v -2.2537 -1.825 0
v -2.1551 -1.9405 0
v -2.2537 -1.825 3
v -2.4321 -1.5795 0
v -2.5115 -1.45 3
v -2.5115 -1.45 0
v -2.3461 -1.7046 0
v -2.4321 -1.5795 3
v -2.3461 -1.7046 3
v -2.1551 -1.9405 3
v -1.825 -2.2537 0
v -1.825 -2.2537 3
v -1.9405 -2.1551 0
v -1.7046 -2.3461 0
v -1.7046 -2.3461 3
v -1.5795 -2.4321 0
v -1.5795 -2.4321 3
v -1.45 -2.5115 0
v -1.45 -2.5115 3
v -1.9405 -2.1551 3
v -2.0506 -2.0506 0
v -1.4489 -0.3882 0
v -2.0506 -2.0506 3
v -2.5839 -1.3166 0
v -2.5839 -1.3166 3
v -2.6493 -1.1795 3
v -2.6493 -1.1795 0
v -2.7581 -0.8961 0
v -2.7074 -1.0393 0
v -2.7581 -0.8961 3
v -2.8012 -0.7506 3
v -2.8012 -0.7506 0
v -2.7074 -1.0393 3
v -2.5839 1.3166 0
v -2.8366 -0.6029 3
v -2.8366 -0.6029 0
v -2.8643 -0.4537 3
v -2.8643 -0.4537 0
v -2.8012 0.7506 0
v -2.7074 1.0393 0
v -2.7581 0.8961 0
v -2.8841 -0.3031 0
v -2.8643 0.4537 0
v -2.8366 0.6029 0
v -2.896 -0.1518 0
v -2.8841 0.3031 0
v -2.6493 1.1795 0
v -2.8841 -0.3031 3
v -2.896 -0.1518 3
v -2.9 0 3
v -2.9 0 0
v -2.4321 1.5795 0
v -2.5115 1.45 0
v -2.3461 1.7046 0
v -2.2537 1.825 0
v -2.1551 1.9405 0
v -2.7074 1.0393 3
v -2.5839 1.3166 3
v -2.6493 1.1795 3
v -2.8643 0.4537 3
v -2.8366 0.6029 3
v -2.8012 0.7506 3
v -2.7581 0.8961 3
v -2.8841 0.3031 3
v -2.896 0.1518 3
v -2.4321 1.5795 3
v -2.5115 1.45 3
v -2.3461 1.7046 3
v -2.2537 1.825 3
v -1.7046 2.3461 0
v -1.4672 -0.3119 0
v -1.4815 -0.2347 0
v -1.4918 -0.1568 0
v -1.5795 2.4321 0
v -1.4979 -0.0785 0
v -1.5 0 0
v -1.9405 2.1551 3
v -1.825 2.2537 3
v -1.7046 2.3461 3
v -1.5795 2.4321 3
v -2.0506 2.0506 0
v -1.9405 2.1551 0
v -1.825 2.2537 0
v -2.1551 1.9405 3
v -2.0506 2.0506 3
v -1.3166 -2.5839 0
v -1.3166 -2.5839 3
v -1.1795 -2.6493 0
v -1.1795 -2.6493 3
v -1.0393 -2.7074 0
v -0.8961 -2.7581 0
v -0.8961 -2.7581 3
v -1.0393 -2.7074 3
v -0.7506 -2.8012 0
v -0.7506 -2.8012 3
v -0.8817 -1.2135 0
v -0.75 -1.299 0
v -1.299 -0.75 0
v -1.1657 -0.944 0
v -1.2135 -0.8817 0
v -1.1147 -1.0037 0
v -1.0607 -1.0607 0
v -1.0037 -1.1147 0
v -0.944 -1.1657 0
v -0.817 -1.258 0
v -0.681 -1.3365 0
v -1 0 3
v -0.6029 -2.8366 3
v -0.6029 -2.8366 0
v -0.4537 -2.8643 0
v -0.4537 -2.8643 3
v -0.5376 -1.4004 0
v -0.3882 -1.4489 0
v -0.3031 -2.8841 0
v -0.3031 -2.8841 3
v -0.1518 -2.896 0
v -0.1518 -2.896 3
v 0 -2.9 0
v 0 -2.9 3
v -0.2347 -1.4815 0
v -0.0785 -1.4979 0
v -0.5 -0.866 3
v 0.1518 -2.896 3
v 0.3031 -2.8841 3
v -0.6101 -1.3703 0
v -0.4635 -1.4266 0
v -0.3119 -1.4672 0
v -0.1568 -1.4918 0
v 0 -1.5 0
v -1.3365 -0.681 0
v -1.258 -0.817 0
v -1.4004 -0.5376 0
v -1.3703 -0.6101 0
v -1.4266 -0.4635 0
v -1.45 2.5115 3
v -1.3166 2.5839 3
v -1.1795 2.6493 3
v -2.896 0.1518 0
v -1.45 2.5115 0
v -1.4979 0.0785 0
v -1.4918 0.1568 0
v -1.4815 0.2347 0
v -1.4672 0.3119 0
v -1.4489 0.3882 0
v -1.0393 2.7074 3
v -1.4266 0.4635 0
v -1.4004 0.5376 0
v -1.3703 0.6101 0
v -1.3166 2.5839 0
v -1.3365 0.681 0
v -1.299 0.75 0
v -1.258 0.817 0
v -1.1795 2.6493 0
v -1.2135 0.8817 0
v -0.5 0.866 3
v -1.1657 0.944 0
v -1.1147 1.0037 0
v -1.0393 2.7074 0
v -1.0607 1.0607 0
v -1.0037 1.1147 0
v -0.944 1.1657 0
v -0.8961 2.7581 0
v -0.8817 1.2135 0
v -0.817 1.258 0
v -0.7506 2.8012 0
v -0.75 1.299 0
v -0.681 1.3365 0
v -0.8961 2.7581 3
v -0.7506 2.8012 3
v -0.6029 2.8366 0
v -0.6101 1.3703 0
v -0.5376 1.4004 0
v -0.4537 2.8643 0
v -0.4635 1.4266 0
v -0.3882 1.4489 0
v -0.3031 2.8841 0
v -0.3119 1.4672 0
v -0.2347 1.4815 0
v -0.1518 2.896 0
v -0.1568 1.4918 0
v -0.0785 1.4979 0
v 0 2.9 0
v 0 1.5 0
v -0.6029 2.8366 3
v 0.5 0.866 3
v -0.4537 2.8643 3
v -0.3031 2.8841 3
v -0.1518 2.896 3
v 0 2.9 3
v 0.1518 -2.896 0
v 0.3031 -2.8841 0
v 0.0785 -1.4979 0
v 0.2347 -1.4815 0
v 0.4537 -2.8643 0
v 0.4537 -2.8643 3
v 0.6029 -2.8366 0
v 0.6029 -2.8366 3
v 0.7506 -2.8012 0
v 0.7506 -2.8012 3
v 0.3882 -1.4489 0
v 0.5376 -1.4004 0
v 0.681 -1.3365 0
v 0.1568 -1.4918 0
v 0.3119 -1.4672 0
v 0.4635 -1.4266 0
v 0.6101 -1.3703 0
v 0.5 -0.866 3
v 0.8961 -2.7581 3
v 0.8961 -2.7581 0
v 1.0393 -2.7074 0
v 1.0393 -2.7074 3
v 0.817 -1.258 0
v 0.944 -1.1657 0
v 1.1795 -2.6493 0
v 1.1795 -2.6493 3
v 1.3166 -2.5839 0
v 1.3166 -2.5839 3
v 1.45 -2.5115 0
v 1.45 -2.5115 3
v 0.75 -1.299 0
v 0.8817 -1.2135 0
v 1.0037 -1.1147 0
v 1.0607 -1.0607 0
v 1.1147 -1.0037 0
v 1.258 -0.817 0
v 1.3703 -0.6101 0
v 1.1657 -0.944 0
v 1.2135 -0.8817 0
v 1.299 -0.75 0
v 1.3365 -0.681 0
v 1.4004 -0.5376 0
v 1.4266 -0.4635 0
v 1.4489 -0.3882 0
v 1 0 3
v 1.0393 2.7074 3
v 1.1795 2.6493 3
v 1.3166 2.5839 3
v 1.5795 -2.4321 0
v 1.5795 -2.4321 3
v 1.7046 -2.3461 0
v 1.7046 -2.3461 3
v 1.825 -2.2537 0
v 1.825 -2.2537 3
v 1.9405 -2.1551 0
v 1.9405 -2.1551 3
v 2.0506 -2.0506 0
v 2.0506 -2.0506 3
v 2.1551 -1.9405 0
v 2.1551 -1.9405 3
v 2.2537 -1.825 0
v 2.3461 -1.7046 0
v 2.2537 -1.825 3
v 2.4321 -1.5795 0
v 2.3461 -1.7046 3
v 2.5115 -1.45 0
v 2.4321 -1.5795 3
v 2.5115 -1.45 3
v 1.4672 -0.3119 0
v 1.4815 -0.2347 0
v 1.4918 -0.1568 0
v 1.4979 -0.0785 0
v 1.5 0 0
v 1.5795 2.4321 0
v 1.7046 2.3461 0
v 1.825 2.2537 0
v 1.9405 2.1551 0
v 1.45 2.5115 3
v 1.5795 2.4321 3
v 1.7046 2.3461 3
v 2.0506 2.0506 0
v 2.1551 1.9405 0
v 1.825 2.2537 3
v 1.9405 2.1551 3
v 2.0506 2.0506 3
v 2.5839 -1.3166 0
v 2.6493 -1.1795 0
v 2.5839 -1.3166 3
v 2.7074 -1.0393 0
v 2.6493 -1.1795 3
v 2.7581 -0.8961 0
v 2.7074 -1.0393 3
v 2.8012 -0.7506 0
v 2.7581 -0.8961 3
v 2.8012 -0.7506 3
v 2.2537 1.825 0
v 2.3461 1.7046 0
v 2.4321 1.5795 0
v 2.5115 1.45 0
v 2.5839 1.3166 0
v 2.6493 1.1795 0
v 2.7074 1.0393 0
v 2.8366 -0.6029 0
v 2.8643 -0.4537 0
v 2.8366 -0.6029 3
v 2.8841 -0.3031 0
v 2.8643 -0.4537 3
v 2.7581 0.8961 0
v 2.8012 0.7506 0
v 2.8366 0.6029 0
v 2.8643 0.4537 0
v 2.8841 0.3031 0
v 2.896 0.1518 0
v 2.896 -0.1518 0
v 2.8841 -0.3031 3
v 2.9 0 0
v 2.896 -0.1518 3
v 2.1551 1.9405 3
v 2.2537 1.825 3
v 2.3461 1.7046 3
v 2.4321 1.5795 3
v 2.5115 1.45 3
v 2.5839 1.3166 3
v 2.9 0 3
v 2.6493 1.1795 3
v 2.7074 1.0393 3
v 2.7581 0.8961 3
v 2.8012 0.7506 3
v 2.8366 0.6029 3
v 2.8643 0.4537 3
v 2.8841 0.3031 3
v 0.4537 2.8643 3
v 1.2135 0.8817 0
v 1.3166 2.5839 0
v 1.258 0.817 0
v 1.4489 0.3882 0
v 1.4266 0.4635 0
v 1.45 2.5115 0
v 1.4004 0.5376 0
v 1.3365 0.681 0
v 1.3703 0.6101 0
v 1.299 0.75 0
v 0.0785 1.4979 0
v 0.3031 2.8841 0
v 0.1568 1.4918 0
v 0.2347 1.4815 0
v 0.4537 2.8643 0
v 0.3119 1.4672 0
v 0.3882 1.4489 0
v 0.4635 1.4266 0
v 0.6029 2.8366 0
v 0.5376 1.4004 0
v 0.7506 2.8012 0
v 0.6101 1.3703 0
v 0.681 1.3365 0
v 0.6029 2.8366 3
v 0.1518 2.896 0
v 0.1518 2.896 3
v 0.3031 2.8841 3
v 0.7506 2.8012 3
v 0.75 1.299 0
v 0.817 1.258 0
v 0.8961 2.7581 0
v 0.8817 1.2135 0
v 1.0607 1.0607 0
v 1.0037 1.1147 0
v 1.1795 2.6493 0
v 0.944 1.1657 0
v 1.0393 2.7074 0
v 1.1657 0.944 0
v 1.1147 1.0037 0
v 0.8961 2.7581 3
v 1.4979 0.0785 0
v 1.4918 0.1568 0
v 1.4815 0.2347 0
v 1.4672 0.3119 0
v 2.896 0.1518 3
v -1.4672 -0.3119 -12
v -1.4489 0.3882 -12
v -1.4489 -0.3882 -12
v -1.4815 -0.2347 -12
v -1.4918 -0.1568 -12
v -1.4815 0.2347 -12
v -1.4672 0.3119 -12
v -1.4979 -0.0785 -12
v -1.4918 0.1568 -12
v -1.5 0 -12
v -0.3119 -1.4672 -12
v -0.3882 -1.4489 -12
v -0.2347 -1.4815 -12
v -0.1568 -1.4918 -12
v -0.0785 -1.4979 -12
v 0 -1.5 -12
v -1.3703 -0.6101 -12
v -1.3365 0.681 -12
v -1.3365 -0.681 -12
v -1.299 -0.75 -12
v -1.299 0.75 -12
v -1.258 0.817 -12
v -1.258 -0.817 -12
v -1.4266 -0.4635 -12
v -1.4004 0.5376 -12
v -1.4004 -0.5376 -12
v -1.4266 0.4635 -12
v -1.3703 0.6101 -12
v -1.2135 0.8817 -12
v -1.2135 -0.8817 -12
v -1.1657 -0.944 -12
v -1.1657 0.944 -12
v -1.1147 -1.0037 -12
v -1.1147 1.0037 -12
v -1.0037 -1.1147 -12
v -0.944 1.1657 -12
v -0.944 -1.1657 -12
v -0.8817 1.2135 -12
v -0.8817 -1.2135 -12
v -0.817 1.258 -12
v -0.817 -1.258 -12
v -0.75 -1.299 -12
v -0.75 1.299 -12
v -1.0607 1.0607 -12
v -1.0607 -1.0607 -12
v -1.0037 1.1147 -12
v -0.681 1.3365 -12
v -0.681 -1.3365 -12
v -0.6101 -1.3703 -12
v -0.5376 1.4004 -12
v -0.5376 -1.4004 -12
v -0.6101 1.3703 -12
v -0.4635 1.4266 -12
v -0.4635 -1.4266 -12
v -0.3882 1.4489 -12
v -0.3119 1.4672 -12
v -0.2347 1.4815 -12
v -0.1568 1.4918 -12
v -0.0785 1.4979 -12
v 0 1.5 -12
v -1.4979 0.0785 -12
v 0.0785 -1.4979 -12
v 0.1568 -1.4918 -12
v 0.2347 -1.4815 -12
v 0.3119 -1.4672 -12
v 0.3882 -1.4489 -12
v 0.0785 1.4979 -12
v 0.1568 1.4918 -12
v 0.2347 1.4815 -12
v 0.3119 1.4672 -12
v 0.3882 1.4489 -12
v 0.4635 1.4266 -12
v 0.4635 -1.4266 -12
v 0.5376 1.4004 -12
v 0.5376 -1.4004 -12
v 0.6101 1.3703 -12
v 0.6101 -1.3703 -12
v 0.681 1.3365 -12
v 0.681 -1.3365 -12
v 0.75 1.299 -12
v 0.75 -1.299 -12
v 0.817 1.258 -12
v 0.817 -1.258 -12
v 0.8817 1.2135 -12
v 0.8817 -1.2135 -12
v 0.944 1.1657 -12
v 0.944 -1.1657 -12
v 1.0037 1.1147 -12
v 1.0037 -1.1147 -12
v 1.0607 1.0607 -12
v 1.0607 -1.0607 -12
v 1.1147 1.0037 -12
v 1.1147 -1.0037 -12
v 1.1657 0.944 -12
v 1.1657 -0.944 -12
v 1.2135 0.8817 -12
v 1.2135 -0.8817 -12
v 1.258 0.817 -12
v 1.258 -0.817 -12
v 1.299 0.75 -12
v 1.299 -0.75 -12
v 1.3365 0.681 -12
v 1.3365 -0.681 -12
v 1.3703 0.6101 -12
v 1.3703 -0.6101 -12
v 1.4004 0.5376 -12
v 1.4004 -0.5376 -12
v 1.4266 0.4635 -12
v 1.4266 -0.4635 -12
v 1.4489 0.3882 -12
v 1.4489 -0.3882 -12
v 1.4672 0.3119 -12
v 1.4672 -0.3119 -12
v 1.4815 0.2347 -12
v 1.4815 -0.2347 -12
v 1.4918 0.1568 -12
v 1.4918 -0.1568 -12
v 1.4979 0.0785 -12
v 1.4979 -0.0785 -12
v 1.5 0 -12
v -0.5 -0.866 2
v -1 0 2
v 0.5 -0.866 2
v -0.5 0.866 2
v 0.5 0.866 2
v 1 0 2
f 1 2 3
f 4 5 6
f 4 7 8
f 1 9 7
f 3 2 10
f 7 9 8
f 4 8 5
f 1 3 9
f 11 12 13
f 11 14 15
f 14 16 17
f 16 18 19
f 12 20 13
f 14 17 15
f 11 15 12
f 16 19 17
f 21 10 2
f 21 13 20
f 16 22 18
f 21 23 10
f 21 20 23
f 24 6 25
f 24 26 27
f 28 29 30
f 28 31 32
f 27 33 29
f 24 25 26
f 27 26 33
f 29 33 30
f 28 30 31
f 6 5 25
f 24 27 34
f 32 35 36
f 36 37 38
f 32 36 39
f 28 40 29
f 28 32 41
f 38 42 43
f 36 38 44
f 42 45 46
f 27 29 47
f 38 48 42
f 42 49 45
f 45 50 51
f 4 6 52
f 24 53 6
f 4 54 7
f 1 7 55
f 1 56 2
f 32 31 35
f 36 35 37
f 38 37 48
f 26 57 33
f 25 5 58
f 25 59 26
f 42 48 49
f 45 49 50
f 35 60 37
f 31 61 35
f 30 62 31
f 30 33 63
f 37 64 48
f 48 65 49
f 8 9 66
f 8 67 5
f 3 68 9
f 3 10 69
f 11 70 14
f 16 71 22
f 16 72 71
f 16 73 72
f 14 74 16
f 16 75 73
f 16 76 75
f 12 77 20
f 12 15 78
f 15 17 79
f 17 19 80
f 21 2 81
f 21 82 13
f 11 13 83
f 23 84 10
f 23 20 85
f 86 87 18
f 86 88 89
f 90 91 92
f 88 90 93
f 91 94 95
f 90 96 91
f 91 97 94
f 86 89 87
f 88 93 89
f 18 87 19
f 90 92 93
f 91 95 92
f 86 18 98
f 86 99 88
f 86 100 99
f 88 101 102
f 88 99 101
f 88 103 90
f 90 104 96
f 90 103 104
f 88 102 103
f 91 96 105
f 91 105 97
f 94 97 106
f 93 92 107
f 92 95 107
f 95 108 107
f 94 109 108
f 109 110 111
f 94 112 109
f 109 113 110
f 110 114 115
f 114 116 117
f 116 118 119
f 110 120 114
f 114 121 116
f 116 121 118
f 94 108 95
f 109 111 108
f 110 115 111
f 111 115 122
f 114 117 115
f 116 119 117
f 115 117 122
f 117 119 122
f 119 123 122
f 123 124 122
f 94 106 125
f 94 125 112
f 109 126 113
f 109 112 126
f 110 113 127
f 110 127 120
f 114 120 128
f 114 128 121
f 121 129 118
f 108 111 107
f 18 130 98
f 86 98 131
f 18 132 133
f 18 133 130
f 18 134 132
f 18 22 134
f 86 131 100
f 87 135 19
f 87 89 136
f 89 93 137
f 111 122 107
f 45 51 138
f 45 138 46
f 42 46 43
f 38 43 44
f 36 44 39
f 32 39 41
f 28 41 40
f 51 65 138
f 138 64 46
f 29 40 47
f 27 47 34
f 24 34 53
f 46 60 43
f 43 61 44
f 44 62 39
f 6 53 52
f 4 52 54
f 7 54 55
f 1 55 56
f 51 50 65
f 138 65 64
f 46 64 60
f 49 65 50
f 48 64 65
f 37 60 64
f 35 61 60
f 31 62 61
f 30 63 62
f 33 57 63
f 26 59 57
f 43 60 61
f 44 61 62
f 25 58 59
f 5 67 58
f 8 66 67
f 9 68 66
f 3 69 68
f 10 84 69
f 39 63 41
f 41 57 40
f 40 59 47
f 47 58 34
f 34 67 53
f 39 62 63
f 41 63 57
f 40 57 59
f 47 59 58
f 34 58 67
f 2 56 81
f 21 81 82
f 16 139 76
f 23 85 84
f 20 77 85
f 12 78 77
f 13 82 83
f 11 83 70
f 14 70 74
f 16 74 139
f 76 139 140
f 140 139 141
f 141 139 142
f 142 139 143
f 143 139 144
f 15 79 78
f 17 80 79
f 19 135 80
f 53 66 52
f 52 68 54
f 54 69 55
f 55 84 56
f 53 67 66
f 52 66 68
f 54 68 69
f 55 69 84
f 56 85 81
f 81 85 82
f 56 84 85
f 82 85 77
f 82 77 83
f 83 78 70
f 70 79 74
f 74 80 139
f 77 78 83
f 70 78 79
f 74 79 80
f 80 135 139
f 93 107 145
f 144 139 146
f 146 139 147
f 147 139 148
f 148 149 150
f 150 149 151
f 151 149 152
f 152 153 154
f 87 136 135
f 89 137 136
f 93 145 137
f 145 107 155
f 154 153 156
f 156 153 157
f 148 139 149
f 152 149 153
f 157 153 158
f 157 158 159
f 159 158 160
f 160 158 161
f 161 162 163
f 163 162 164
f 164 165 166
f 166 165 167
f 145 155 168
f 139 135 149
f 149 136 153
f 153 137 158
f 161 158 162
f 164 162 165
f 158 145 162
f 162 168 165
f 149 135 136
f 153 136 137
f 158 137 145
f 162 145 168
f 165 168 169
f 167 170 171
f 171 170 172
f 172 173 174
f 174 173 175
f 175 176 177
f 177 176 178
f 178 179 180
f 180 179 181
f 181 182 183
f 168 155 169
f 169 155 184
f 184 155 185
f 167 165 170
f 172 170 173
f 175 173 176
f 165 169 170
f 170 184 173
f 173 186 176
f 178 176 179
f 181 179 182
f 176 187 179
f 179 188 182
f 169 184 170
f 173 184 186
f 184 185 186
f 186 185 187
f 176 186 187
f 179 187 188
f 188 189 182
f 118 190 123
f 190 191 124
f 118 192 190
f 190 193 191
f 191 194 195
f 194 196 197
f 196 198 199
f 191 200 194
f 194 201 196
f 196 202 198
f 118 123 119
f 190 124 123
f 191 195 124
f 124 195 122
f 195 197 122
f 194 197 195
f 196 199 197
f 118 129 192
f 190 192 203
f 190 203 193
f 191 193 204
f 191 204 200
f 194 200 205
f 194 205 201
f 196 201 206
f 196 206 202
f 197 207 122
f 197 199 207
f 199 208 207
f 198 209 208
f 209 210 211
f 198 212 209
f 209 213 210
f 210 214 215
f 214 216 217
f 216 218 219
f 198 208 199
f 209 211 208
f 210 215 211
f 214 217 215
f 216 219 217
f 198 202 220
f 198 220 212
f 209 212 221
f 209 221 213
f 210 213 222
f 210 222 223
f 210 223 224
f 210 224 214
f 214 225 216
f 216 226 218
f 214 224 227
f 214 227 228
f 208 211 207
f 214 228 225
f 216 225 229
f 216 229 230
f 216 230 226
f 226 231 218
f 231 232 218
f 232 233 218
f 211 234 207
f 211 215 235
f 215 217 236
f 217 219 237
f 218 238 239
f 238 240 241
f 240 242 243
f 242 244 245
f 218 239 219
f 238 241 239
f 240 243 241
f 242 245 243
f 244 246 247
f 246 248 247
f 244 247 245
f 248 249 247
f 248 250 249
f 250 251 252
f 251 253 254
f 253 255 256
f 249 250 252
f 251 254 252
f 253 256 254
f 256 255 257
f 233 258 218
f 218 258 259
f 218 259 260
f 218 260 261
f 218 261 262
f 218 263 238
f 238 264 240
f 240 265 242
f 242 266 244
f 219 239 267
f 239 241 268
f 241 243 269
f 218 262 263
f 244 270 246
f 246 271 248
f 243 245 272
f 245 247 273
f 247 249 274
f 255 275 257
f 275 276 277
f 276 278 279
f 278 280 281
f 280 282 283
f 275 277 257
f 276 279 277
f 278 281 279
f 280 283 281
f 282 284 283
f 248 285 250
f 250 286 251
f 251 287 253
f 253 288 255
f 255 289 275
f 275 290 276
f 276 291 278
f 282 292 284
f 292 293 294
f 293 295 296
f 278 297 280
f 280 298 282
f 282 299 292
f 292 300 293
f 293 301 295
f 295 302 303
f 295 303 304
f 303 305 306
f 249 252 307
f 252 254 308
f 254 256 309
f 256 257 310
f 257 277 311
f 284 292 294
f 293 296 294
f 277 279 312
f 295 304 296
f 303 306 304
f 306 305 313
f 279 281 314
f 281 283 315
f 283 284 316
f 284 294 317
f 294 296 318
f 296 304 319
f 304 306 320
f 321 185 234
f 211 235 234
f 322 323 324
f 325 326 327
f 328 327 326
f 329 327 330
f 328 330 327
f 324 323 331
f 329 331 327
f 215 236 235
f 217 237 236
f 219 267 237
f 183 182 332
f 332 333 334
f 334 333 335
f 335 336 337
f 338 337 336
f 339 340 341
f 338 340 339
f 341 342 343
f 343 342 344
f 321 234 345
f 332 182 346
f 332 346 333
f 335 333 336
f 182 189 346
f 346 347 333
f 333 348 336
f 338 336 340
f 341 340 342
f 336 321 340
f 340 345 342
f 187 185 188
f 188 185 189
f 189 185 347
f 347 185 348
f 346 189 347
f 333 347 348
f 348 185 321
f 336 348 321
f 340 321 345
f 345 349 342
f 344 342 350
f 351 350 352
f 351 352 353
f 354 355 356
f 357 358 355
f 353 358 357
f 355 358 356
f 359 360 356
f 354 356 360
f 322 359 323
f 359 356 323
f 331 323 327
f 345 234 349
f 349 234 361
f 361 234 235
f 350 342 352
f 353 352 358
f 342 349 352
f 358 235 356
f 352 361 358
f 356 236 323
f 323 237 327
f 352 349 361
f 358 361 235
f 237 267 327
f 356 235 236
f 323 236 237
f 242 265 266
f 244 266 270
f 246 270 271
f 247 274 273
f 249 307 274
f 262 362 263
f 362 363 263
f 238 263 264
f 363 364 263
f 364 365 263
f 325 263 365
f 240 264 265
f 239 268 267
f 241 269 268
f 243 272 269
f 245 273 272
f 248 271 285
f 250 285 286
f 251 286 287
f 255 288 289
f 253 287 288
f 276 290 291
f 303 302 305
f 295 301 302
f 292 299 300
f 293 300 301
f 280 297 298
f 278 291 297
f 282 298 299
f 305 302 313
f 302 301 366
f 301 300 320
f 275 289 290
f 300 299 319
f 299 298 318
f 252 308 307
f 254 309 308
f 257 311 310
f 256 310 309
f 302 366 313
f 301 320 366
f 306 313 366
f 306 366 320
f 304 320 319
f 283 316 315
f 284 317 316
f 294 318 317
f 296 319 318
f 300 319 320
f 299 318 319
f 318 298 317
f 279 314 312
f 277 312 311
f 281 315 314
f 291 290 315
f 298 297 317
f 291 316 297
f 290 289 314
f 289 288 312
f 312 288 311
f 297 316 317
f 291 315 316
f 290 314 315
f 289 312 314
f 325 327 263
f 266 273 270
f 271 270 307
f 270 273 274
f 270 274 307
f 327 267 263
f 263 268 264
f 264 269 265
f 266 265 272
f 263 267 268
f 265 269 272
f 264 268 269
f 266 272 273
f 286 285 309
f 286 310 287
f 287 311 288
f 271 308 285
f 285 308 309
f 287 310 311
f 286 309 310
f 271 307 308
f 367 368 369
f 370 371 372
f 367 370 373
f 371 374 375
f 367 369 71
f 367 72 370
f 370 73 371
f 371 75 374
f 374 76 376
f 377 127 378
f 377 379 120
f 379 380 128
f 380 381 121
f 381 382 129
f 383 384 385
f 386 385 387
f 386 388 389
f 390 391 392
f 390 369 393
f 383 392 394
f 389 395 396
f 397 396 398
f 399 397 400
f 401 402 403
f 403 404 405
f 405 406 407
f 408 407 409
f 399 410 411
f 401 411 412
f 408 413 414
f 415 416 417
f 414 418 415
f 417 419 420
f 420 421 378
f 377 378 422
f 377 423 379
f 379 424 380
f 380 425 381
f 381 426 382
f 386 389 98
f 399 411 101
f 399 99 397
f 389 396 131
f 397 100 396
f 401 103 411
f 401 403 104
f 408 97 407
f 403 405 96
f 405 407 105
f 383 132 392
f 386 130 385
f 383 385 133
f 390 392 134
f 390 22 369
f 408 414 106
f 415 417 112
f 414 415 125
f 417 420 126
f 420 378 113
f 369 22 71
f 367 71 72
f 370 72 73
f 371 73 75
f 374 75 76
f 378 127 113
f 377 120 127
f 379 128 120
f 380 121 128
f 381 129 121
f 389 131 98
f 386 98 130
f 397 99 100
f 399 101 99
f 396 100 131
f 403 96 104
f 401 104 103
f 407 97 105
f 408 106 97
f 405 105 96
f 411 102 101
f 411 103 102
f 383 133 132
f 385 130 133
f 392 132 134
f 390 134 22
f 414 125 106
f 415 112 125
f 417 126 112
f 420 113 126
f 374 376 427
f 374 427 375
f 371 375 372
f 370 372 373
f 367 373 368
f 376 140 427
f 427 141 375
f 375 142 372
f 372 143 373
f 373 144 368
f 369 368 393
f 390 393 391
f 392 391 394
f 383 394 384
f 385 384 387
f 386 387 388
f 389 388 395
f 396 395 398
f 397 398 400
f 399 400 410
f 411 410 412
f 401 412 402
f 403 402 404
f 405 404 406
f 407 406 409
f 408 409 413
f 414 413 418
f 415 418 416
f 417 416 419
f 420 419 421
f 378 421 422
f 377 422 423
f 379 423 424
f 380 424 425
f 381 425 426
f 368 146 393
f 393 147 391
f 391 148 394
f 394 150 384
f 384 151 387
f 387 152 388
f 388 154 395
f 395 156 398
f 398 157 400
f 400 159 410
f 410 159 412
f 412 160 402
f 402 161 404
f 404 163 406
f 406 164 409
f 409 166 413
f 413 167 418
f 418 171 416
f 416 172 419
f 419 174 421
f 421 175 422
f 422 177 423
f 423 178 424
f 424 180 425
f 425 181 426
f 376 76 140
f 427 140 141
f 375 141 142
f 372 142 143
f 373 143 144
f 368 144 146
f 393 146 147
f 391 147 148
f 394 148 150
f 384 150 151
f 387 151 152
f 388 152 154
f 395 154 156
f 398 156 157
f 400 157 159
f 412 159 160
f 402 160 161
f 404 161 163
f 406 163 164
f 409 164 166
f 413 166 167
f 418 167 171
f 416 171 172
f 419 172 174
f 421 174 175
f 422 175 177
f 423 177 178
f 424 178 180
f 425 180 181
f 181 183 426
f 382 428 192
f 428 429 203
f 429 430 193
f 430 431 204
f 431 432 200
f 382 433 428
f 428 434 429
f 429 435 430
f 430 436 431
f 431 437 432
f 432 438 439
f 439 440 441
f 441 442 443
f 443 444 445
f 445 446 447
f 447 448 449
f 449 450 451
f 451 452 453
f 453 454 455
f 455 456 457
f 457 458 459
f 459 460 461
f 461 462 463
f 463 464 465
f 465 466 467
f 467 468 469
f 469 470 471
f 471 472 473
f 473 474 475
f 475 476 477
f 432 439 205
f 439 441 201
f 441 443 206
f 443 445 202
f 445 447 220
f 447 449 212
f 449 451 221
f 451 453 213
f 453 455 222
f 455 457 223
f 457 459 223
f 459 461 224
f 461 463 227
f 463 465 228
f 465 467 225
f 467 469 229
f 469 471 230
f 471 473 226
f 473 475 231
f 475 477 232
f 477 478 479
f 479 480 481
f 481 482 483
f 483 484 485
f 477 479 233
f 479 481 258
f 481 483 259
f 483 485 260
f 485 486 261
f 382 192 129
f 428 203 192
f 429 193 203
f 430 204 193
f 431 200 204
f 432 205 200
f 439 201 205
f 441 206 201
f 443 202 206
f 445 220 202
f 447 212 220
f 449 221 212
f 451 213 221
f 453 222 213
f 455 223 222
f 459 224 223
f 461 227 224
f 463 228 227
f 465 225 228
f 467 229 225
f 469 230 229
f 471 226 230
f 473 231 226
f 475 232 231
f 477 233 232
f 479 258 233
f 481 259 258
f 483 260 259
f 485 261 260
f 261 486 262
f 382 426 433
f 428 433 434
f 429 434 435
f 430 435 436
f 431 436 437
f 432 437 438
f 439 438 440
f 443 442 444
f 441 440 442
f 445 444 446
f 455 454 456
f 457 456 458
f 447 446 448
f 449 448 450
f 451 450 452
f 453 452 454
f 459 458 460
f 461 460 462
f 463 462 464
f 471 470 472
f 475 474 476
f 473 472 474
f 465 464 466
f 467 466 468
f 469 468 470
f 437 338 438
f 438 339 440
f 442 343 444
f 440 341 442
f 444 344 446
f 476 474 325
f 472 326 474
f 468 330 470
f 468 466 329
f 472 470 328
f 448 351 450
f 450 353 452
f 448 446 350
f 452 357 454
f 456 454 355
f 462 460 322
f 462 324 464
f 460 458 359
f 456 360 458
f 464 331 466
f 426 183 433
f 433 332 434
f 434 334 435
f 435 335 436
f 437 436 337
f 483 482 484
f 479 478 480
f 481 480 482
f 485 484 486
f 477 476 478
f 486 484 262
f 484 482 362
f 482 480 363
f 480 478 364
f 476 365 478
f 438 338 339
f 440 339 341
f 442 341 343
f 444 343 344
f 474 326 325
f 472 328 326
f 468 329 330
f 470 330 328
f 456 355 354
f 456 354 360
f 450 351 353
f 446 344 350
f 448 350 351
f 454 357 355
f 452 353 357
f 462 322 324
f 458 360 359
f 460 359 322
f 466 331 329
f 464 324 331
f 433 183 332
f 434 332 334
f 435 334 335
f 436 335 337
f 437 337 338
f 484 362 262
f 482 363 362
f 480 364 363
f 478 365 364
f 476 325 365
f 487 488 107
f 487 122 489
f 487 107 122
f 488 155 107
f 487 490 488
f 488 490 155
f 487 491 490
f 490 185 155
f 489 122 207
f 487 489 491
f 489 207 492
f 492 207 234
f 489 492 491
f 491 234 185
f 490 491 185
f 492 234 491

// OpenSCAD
// file: C:/gh/oomlout_oobb_part_motor_gearbox_wave_drive_version_5/parts/oobb_part_motor_gearbox_wave_drive_version_5_12_to_1_reduction/compact_helpers.scad
// Reusable native geometry helpers.
function polar(r,a)=[r*cos(a),r*sin(a)];
function rotate_point(p,a)=[p[0]*cos(a)-p[1]*sin(a),p[0]*sin(a)+p[1]*cos(a)];
function profile_point(t)=let(
    s=sqrt(pow(pitch_radius,2)-pow(eccentricity*sin(cavity_count*t),2)),
    r=eccentricity*cos(cavity_count*t)+s,
    xi=atan2(eccentricity*cavity_count*sin(cavity_count*t),s),
    rr=roller_radius+profile_clearance)
    [r*cos(t)+rr*cos(t+xi),r*sin(t)+rr*sin(t+xi)];
function profile_points(upper=false)=[for(i=[0:cavity_count*profile_samples_per_cavity-1])
    rotate_point(profile_point(360*i/(cavity_count*profile_samples_per_cavity)),0)];
function roller_position(i,a,upper=false)=let(
    t=-a/roller_count+360*i/roller_count,
    rel=t-a-(upper?180:0),
    r=eccentricity*cos(rel)+sqrt(pow(pitch_radius,2)-pow(eccentricity*sin(rel),2))) polar(r,t);
module tube(ro,ri,h) { difference() { cylinder(r=ro,h=h); translate([0,0,-eps]) cylinder(r=ri,h=h+2*eps); } }
module screw_hole(size,h) { scale([1,1,h]) { if(size=="m2") oobb_hole_m2(); if(size=="m3") oobb_hole_m3(); if(size=="m6") oobb_hole_m6(); } }
module socket_recess(size,depth) {
    // OOBB socket head starts at the under-head plane and extends outward.
    scale([1,1,depth/(size=="m3"?3.2:2.2)]) {
        if(size=="m3") oobb_socket_m3(); else oobb_socket_m2();
    }
}
module at_mounts(points) { for(p=points) translate([p[0],p[1],0]) children(); }
module shaft_cut(h,fit=shaft_fit_clearance) {
    linear_extrude(h) intersection() {
        circle(r=input_shaft_diameter/2+fit);
        translate([-10,-10]) square([10+input_shaft_diameter/2-input_shaft_flat_depth+fit,20]);
    }
}
module rounded_rectangle_plate(size=[119,119,3],radius=1.5) {
    hull() for(x=[-1,1],y=[-1,1]) translate([x*(size[0]/2-radius),y*(size[1]/2-radius),0]) cylinder(r=radius,h=size[2]);
}
module grid_cuts(h) {
    // Actual OOBB grid centres: six units are centred on half-pitch offsets.
    for(i=[0:base_width-1],j=[0:base_height-1])
        let(x=(i-(base_width-1)/2)*oobb_grid_pitch,y=(j-(base_height-1)/2)*oobb_grid_pitch)
        if(sqrt(x*x+y*y)>housing_radius+3.5)
            translate([x,y,-eps]) screw_hole("m6",h+2*eps);
}
module wave_generator() {
    render(convexity=20) difference() {
        tube(wave_radius,12.6,wave_height);
        translate([0,0,wave_seat_z]) cylinder(r=13.5+bearing_seat_clearance,h=wave_height);
        translate([0,0,wave_height-wave_cap_depth]) cylinder(r=22.15,h=wave_cap_depth+eps);
        at_mounts(wave_mounts) {
            translate([0,0,-eps]) screw_hole("m3",wave_height+2*eps);
            translate([0,0,wave_nut_z]) scale([1,1,(wave_height-wave_cap_depth-wave_nut_z+eps)/2.7]) oobb_nut_m3();
        }
    }
}
module wave_cap() {
    render(convexity=20) difference() {
        tube(22,12.6,wave_cap_depth);
        at_mounts(wave_mounts) {
            translate([0,0,-eps]) screw_hole("m3",wave_cap_depth+2*eps);
            translate([0,0,wave_cap_depth-wave_head_recess]) socket_recess("m3",wave_head_recess+eps);
        }
    }
}
// file: C:/gh/oomlout_oobb_part_motor_gearbox_wave_drive_version_5/parts/oobb_part_motor_gearbox_wave_drive_version_5_12_to_1_reduction/oobb_hardware.scad
module oobb_rounded_rectangle_edges(size, radius, radius_top, radius_bottom) {
      rt=radius_top; rb=radius_bottom; depth=size[2]; n=16;
      lower=rb==0 ? [[radius,0]] :
        [for(i=[0:n]) let(a=-90+90*i/n) [radius-rb+rb*cos(a),rb+rb*sin(a)]];
      upper=rt==0 ? [[radius,depth]] :
        [for(i=[0:n]) let(a=90*i/n) [radius-rt+rt*cos(a),depth-rt+rt*sin(a)]];
      hull() for(x=[-size[0]/2+radius,size[0]/2-radius])
        for(y=[-size[1]/2+radius,size[1]/2-radius])
          translate([x,y,0]) rotate_extrude()
            polygon(concat([[0,0]],lower,upper,[[0,depth]]));
    }
// Generated from installed OOBB v5. All primitives use overhang=True.

module oobb_motor_plate_body() {


difference() {
	union() {
		translate(v = [0, 0, 0]) {
			rotate(a = [0, 0, 0]) {
				difference() {
					union() {
						oobb_rounded_rectangle_edges(radius = 1.5, radius_bottom = 1.5, radius_top = 1.5, size = [89.0, 89.0, 4.0]);
					}
					union();
				}
			}
		}
	}
	union();
}

}

module oobb_hole_m2() {


difference() {
	union() {
		cylinder(h = 1, r = 1.35);
	}
	union();
}

}

module oobb_hole_m3() {


difference() {
	union() {
		cylinder(h = 1, r = 1.8);
	}
	union();
}

}

module oobb_hole_m6() {


difference() {
	union() {
		cylinder(h = 1, r = 3.25);
	}
	union();
}

}

module oobb_nut_m2() {


difference() {
	union() {
		translate(v = [0, 0, 0]) {
			rotate(a = [0, 0, 0]) {
				difference() {
					union() {
						linear_extrude(height = 2.2) {
							polygon(points = [[2.4234, 0.0], [1.2117000000000002, 2.0987259635312085], [-1.2116999999999996, 2.0987259635312085], [-2.4234, 2.967809053053696e-16], [-1.211700000000001, -2.098725963531208], [1.2116999999999984, -2.0987259635312094]]);
						}
						translate(v = [-1.25, -2.75, -0.3]) {
							cube(size = [2.5, 5.5, 0.3]);
						}
						translate(v = [-1.25, -1.25, -0.6]) {
							cube(size = [2.5, 2.5, 0.3]);
						}
						translate(v = [-1.25, -2.75, 2.2]) {
							cube(size = [2.5, 5.5, 0.3]);
						}
						translate(v = [-1.25, -1.25, 2.5]) {
							cube(size = [2.5, 2.5, 0.3]);
						}
					}
					union();
				}
			}
		}
	}
	union();
}

}

module oobb_socket_m2() {


difference() {
	union() {
		translate(v = [0, 0, 0]) {
			rotate(a = [0, 0, 0]) {
				difference() {
					union() {
						cylinder(h = 2.2, r = 2.1);
						translate(v = [-1.25, -2.75, -0.3]) {
							cube(size = [2.5, 5.5, 0.3]);
						}
						translate(v = [-1.25, -1.25, -0.6]) {
							cube(size = [2.5, 2.5, 0.3]);
						}
					}
					union();
				}
			}
		}
	}
	union();
}

}

module oobb_nut_m3() {


difference() {
	union() {
		translate(v = [0, 0, 0]) {
			rotate(a = [0, 0, 0]) {
				difference() {
					union() {
						linear_extrude(height = 2.7) {
							polygon(points = [[3.4619999999999997, 0.0], [1.7310000000000003, 2.9981799479017264], [-1.7309999999999992, 2.9981799479017264], [-3.4619999999999997, 4.2397272186481365e-16], [-1.7310000000000014, -2.998179947901726], [1.7309999999999977, -2.9981799479017277]]);
						}
						translate(v = [-1.75, -3.25, -0.3]) {
							cube(size = [3.5, 6.5, 0.3]);
						}
						translate(v = [-1.75, -1.75, -0.6]) {
							cube(size = [3.5, 3.5, 0.3]);
						}
						translate(v = [-1.75, -3.25, 2.7]) {
							cube(size = [3.5, 6.5, 0.3]);
						}
						translate(v = [-1.75, -1.75, 3.0]) {
							cube(size = [3.5, 3.5, 0.3]);
						}
					}
					union();
				}
			}
		}
	}
	union();
}

}

module oobb_socket_m3() {


difference() {
	union() {
		translate(v = [0, 0, 0]) {
			rotate(a = [0, 0, 0]) {
				difference() {
					union() {
						cylinder(h = 3.2, r = 3.0);
						translate(v = [-1.75, -3.25, -0.3]) {
							cube(size = [3.5, 6.5, 0.3]);
						}
						translate(v = [-1.75, -1.75, -0.6]) {
							cube(size = [3.5, 3.5, 0.3]);
						}
					}
					union();
				}
			}
		}
	}
	union();
}

}

module oobb_nut_m6() {


difference() {
	union() {
		translate(v = [0, 0, 0]) {
			rotate(a = [0, 0, 0]) {
				difference() {
					union() {
						linear_extrude(height = 5.2) {
							polygon(points = [[5.914249999999999, 0.0], [2.957125, 5.1218907443321156], [-2.9571249999999982, 5.1218907443321156], [-5.914249999999999, 7.242867331857232e-16], [-2.9571250000000022, -5.121890744332115], [2.9571249999999956, -5.121890744332118]]);
						}
						translate(v = [-2.875, -5.0, -0.3]) {
							cube(size = [5.75, 10, 0.3]);
						}
						translate(v = [-2.875, -2.875, -0.6]) {
							cube(size = [5.75, 5.75, 0.3]);
						}
						translate(v = [-2.875, -5.0, 5.2]) {
							cube(size = [5.75, 10, 0.3]);
						}
						translate(v = [-2.875, -2.875, 5.5]) {
							cube(size = [5.75, 5.75, 0.3]);
						}
					}
					union();
				}
			}
		}
	}
	union();
}

}
// file: C:/gh/oomlout_oobb_part_motor_gearbox_wave_drive_version_5/parts/oobb_part_motor_gearbox_wave_drive_version_5_12_to_1_reduction/parameters.scad
// Generated by working_scad.py. Edit the Python recipe to persist changes.
style = "version_5";
reduction = 12;
bearing_output = "6810";
bearing_wave = "6704";
roller_diameter = 7.0;
roller_bore_diameter = 3.2;
roller_length = 12.0;
roller_material = "nylon";
roller_bank_count = 1;
motor_plate_depth = 4.0;
motor_body_depth = 40.0;
motor_shaft_length = 24.0;
motor_hole_pitch = 31.0;
motor_thread_depth = 6.0;
motor_pilot_diameter = 22.0;
motor_pilot_height = 2.0;
output_holder_wall = 7.0;
max_screw_length = 35.0;
eccentricity = 0.75;
wave_radius = 23.25;
profile_clearance = 0.15;
roller_slot_clearance = 0.3;
roller_end_clearance = 0.3;
cage_wall = 4.0;
cage_plate_depth = 3.0;
bearing_seat_clearance = 0.1;
journal_clearance = 0.05;
bearing_axial_clearance = 0.2;
output_plate_diameter = 65.0;
output_plate_depth = 6.0;
output_grid_pitch = 15.0;
output_face_clearance = 0.3;
output_socket_recess = 4.0;
output_screw_length = 16;
output_nut_depth = 5.2;
output_nut_height = 5.0;
motor_shaft_end_clearance = 0.5;
base_width = 6;
base_height = 6;
oobb_grid_pitch = 15.0;
oobb_size_allowance = 1.0;
base_edge_radius = 1.5;
housing_flange_corner_radius = 1.5;
housing_screw_pitch_radius = 35.5;
housing_screw_count = 6;
input_shaft_diameter = 5.0;
input_shaft_flat_depth = 0.5;
shaft_fit_clearance = 0.1;
cage_screw_count = 4;
profile_samples_per_cavity = 100;
circle_fragments = 120;
overhang = true;
run_scad = true;
run_solidcraft = false;
generate_stl = true;
generate_previews = true;
generate_renders = true;
validate_geometry = true;
package_outputs = true;
render_threads = 8;
variant = "default";
// main file
include <C:/gh/oomlout_oobb_part_motor_gearbox_wave_drive_version_5/parts/oobb_part_motor_gearbox_wave_drive_version_5_12_to_1_reduction/parameters.scad>
include <C:/gh/oomlout_oobb_part_motor_gearbox_wave_drive_version_5/parts/oobb_part_motor_gearbox_wave_drive_version_5_12_to_1_reduction/oobb_hardware.scad>
include <C:/gh/oomlout_oobb_part_motor_gearbox_wave_drive_version_5/parts/oobb_part_motor_gearbox_wave_drive_version_5_12_to_1_reduction/geometry.scad>
difference() { 

difference() {
	union() {
		translate(v = [0, 0, 0]) {
			rotate(a = [0, 0, 0]) {
				difference() {
					union() {
						cylinder(h = 3, r = 2.9);
						translate(v = [0, 0, -12.0]) {
							cylinder(h = 12, r = 1.5);
						}
					}
					union();
				}
			}
		}
	}
	union();
}
 translate([0,0,2]) cylinder(r=1.0,h=1.01,$fn=6); }
